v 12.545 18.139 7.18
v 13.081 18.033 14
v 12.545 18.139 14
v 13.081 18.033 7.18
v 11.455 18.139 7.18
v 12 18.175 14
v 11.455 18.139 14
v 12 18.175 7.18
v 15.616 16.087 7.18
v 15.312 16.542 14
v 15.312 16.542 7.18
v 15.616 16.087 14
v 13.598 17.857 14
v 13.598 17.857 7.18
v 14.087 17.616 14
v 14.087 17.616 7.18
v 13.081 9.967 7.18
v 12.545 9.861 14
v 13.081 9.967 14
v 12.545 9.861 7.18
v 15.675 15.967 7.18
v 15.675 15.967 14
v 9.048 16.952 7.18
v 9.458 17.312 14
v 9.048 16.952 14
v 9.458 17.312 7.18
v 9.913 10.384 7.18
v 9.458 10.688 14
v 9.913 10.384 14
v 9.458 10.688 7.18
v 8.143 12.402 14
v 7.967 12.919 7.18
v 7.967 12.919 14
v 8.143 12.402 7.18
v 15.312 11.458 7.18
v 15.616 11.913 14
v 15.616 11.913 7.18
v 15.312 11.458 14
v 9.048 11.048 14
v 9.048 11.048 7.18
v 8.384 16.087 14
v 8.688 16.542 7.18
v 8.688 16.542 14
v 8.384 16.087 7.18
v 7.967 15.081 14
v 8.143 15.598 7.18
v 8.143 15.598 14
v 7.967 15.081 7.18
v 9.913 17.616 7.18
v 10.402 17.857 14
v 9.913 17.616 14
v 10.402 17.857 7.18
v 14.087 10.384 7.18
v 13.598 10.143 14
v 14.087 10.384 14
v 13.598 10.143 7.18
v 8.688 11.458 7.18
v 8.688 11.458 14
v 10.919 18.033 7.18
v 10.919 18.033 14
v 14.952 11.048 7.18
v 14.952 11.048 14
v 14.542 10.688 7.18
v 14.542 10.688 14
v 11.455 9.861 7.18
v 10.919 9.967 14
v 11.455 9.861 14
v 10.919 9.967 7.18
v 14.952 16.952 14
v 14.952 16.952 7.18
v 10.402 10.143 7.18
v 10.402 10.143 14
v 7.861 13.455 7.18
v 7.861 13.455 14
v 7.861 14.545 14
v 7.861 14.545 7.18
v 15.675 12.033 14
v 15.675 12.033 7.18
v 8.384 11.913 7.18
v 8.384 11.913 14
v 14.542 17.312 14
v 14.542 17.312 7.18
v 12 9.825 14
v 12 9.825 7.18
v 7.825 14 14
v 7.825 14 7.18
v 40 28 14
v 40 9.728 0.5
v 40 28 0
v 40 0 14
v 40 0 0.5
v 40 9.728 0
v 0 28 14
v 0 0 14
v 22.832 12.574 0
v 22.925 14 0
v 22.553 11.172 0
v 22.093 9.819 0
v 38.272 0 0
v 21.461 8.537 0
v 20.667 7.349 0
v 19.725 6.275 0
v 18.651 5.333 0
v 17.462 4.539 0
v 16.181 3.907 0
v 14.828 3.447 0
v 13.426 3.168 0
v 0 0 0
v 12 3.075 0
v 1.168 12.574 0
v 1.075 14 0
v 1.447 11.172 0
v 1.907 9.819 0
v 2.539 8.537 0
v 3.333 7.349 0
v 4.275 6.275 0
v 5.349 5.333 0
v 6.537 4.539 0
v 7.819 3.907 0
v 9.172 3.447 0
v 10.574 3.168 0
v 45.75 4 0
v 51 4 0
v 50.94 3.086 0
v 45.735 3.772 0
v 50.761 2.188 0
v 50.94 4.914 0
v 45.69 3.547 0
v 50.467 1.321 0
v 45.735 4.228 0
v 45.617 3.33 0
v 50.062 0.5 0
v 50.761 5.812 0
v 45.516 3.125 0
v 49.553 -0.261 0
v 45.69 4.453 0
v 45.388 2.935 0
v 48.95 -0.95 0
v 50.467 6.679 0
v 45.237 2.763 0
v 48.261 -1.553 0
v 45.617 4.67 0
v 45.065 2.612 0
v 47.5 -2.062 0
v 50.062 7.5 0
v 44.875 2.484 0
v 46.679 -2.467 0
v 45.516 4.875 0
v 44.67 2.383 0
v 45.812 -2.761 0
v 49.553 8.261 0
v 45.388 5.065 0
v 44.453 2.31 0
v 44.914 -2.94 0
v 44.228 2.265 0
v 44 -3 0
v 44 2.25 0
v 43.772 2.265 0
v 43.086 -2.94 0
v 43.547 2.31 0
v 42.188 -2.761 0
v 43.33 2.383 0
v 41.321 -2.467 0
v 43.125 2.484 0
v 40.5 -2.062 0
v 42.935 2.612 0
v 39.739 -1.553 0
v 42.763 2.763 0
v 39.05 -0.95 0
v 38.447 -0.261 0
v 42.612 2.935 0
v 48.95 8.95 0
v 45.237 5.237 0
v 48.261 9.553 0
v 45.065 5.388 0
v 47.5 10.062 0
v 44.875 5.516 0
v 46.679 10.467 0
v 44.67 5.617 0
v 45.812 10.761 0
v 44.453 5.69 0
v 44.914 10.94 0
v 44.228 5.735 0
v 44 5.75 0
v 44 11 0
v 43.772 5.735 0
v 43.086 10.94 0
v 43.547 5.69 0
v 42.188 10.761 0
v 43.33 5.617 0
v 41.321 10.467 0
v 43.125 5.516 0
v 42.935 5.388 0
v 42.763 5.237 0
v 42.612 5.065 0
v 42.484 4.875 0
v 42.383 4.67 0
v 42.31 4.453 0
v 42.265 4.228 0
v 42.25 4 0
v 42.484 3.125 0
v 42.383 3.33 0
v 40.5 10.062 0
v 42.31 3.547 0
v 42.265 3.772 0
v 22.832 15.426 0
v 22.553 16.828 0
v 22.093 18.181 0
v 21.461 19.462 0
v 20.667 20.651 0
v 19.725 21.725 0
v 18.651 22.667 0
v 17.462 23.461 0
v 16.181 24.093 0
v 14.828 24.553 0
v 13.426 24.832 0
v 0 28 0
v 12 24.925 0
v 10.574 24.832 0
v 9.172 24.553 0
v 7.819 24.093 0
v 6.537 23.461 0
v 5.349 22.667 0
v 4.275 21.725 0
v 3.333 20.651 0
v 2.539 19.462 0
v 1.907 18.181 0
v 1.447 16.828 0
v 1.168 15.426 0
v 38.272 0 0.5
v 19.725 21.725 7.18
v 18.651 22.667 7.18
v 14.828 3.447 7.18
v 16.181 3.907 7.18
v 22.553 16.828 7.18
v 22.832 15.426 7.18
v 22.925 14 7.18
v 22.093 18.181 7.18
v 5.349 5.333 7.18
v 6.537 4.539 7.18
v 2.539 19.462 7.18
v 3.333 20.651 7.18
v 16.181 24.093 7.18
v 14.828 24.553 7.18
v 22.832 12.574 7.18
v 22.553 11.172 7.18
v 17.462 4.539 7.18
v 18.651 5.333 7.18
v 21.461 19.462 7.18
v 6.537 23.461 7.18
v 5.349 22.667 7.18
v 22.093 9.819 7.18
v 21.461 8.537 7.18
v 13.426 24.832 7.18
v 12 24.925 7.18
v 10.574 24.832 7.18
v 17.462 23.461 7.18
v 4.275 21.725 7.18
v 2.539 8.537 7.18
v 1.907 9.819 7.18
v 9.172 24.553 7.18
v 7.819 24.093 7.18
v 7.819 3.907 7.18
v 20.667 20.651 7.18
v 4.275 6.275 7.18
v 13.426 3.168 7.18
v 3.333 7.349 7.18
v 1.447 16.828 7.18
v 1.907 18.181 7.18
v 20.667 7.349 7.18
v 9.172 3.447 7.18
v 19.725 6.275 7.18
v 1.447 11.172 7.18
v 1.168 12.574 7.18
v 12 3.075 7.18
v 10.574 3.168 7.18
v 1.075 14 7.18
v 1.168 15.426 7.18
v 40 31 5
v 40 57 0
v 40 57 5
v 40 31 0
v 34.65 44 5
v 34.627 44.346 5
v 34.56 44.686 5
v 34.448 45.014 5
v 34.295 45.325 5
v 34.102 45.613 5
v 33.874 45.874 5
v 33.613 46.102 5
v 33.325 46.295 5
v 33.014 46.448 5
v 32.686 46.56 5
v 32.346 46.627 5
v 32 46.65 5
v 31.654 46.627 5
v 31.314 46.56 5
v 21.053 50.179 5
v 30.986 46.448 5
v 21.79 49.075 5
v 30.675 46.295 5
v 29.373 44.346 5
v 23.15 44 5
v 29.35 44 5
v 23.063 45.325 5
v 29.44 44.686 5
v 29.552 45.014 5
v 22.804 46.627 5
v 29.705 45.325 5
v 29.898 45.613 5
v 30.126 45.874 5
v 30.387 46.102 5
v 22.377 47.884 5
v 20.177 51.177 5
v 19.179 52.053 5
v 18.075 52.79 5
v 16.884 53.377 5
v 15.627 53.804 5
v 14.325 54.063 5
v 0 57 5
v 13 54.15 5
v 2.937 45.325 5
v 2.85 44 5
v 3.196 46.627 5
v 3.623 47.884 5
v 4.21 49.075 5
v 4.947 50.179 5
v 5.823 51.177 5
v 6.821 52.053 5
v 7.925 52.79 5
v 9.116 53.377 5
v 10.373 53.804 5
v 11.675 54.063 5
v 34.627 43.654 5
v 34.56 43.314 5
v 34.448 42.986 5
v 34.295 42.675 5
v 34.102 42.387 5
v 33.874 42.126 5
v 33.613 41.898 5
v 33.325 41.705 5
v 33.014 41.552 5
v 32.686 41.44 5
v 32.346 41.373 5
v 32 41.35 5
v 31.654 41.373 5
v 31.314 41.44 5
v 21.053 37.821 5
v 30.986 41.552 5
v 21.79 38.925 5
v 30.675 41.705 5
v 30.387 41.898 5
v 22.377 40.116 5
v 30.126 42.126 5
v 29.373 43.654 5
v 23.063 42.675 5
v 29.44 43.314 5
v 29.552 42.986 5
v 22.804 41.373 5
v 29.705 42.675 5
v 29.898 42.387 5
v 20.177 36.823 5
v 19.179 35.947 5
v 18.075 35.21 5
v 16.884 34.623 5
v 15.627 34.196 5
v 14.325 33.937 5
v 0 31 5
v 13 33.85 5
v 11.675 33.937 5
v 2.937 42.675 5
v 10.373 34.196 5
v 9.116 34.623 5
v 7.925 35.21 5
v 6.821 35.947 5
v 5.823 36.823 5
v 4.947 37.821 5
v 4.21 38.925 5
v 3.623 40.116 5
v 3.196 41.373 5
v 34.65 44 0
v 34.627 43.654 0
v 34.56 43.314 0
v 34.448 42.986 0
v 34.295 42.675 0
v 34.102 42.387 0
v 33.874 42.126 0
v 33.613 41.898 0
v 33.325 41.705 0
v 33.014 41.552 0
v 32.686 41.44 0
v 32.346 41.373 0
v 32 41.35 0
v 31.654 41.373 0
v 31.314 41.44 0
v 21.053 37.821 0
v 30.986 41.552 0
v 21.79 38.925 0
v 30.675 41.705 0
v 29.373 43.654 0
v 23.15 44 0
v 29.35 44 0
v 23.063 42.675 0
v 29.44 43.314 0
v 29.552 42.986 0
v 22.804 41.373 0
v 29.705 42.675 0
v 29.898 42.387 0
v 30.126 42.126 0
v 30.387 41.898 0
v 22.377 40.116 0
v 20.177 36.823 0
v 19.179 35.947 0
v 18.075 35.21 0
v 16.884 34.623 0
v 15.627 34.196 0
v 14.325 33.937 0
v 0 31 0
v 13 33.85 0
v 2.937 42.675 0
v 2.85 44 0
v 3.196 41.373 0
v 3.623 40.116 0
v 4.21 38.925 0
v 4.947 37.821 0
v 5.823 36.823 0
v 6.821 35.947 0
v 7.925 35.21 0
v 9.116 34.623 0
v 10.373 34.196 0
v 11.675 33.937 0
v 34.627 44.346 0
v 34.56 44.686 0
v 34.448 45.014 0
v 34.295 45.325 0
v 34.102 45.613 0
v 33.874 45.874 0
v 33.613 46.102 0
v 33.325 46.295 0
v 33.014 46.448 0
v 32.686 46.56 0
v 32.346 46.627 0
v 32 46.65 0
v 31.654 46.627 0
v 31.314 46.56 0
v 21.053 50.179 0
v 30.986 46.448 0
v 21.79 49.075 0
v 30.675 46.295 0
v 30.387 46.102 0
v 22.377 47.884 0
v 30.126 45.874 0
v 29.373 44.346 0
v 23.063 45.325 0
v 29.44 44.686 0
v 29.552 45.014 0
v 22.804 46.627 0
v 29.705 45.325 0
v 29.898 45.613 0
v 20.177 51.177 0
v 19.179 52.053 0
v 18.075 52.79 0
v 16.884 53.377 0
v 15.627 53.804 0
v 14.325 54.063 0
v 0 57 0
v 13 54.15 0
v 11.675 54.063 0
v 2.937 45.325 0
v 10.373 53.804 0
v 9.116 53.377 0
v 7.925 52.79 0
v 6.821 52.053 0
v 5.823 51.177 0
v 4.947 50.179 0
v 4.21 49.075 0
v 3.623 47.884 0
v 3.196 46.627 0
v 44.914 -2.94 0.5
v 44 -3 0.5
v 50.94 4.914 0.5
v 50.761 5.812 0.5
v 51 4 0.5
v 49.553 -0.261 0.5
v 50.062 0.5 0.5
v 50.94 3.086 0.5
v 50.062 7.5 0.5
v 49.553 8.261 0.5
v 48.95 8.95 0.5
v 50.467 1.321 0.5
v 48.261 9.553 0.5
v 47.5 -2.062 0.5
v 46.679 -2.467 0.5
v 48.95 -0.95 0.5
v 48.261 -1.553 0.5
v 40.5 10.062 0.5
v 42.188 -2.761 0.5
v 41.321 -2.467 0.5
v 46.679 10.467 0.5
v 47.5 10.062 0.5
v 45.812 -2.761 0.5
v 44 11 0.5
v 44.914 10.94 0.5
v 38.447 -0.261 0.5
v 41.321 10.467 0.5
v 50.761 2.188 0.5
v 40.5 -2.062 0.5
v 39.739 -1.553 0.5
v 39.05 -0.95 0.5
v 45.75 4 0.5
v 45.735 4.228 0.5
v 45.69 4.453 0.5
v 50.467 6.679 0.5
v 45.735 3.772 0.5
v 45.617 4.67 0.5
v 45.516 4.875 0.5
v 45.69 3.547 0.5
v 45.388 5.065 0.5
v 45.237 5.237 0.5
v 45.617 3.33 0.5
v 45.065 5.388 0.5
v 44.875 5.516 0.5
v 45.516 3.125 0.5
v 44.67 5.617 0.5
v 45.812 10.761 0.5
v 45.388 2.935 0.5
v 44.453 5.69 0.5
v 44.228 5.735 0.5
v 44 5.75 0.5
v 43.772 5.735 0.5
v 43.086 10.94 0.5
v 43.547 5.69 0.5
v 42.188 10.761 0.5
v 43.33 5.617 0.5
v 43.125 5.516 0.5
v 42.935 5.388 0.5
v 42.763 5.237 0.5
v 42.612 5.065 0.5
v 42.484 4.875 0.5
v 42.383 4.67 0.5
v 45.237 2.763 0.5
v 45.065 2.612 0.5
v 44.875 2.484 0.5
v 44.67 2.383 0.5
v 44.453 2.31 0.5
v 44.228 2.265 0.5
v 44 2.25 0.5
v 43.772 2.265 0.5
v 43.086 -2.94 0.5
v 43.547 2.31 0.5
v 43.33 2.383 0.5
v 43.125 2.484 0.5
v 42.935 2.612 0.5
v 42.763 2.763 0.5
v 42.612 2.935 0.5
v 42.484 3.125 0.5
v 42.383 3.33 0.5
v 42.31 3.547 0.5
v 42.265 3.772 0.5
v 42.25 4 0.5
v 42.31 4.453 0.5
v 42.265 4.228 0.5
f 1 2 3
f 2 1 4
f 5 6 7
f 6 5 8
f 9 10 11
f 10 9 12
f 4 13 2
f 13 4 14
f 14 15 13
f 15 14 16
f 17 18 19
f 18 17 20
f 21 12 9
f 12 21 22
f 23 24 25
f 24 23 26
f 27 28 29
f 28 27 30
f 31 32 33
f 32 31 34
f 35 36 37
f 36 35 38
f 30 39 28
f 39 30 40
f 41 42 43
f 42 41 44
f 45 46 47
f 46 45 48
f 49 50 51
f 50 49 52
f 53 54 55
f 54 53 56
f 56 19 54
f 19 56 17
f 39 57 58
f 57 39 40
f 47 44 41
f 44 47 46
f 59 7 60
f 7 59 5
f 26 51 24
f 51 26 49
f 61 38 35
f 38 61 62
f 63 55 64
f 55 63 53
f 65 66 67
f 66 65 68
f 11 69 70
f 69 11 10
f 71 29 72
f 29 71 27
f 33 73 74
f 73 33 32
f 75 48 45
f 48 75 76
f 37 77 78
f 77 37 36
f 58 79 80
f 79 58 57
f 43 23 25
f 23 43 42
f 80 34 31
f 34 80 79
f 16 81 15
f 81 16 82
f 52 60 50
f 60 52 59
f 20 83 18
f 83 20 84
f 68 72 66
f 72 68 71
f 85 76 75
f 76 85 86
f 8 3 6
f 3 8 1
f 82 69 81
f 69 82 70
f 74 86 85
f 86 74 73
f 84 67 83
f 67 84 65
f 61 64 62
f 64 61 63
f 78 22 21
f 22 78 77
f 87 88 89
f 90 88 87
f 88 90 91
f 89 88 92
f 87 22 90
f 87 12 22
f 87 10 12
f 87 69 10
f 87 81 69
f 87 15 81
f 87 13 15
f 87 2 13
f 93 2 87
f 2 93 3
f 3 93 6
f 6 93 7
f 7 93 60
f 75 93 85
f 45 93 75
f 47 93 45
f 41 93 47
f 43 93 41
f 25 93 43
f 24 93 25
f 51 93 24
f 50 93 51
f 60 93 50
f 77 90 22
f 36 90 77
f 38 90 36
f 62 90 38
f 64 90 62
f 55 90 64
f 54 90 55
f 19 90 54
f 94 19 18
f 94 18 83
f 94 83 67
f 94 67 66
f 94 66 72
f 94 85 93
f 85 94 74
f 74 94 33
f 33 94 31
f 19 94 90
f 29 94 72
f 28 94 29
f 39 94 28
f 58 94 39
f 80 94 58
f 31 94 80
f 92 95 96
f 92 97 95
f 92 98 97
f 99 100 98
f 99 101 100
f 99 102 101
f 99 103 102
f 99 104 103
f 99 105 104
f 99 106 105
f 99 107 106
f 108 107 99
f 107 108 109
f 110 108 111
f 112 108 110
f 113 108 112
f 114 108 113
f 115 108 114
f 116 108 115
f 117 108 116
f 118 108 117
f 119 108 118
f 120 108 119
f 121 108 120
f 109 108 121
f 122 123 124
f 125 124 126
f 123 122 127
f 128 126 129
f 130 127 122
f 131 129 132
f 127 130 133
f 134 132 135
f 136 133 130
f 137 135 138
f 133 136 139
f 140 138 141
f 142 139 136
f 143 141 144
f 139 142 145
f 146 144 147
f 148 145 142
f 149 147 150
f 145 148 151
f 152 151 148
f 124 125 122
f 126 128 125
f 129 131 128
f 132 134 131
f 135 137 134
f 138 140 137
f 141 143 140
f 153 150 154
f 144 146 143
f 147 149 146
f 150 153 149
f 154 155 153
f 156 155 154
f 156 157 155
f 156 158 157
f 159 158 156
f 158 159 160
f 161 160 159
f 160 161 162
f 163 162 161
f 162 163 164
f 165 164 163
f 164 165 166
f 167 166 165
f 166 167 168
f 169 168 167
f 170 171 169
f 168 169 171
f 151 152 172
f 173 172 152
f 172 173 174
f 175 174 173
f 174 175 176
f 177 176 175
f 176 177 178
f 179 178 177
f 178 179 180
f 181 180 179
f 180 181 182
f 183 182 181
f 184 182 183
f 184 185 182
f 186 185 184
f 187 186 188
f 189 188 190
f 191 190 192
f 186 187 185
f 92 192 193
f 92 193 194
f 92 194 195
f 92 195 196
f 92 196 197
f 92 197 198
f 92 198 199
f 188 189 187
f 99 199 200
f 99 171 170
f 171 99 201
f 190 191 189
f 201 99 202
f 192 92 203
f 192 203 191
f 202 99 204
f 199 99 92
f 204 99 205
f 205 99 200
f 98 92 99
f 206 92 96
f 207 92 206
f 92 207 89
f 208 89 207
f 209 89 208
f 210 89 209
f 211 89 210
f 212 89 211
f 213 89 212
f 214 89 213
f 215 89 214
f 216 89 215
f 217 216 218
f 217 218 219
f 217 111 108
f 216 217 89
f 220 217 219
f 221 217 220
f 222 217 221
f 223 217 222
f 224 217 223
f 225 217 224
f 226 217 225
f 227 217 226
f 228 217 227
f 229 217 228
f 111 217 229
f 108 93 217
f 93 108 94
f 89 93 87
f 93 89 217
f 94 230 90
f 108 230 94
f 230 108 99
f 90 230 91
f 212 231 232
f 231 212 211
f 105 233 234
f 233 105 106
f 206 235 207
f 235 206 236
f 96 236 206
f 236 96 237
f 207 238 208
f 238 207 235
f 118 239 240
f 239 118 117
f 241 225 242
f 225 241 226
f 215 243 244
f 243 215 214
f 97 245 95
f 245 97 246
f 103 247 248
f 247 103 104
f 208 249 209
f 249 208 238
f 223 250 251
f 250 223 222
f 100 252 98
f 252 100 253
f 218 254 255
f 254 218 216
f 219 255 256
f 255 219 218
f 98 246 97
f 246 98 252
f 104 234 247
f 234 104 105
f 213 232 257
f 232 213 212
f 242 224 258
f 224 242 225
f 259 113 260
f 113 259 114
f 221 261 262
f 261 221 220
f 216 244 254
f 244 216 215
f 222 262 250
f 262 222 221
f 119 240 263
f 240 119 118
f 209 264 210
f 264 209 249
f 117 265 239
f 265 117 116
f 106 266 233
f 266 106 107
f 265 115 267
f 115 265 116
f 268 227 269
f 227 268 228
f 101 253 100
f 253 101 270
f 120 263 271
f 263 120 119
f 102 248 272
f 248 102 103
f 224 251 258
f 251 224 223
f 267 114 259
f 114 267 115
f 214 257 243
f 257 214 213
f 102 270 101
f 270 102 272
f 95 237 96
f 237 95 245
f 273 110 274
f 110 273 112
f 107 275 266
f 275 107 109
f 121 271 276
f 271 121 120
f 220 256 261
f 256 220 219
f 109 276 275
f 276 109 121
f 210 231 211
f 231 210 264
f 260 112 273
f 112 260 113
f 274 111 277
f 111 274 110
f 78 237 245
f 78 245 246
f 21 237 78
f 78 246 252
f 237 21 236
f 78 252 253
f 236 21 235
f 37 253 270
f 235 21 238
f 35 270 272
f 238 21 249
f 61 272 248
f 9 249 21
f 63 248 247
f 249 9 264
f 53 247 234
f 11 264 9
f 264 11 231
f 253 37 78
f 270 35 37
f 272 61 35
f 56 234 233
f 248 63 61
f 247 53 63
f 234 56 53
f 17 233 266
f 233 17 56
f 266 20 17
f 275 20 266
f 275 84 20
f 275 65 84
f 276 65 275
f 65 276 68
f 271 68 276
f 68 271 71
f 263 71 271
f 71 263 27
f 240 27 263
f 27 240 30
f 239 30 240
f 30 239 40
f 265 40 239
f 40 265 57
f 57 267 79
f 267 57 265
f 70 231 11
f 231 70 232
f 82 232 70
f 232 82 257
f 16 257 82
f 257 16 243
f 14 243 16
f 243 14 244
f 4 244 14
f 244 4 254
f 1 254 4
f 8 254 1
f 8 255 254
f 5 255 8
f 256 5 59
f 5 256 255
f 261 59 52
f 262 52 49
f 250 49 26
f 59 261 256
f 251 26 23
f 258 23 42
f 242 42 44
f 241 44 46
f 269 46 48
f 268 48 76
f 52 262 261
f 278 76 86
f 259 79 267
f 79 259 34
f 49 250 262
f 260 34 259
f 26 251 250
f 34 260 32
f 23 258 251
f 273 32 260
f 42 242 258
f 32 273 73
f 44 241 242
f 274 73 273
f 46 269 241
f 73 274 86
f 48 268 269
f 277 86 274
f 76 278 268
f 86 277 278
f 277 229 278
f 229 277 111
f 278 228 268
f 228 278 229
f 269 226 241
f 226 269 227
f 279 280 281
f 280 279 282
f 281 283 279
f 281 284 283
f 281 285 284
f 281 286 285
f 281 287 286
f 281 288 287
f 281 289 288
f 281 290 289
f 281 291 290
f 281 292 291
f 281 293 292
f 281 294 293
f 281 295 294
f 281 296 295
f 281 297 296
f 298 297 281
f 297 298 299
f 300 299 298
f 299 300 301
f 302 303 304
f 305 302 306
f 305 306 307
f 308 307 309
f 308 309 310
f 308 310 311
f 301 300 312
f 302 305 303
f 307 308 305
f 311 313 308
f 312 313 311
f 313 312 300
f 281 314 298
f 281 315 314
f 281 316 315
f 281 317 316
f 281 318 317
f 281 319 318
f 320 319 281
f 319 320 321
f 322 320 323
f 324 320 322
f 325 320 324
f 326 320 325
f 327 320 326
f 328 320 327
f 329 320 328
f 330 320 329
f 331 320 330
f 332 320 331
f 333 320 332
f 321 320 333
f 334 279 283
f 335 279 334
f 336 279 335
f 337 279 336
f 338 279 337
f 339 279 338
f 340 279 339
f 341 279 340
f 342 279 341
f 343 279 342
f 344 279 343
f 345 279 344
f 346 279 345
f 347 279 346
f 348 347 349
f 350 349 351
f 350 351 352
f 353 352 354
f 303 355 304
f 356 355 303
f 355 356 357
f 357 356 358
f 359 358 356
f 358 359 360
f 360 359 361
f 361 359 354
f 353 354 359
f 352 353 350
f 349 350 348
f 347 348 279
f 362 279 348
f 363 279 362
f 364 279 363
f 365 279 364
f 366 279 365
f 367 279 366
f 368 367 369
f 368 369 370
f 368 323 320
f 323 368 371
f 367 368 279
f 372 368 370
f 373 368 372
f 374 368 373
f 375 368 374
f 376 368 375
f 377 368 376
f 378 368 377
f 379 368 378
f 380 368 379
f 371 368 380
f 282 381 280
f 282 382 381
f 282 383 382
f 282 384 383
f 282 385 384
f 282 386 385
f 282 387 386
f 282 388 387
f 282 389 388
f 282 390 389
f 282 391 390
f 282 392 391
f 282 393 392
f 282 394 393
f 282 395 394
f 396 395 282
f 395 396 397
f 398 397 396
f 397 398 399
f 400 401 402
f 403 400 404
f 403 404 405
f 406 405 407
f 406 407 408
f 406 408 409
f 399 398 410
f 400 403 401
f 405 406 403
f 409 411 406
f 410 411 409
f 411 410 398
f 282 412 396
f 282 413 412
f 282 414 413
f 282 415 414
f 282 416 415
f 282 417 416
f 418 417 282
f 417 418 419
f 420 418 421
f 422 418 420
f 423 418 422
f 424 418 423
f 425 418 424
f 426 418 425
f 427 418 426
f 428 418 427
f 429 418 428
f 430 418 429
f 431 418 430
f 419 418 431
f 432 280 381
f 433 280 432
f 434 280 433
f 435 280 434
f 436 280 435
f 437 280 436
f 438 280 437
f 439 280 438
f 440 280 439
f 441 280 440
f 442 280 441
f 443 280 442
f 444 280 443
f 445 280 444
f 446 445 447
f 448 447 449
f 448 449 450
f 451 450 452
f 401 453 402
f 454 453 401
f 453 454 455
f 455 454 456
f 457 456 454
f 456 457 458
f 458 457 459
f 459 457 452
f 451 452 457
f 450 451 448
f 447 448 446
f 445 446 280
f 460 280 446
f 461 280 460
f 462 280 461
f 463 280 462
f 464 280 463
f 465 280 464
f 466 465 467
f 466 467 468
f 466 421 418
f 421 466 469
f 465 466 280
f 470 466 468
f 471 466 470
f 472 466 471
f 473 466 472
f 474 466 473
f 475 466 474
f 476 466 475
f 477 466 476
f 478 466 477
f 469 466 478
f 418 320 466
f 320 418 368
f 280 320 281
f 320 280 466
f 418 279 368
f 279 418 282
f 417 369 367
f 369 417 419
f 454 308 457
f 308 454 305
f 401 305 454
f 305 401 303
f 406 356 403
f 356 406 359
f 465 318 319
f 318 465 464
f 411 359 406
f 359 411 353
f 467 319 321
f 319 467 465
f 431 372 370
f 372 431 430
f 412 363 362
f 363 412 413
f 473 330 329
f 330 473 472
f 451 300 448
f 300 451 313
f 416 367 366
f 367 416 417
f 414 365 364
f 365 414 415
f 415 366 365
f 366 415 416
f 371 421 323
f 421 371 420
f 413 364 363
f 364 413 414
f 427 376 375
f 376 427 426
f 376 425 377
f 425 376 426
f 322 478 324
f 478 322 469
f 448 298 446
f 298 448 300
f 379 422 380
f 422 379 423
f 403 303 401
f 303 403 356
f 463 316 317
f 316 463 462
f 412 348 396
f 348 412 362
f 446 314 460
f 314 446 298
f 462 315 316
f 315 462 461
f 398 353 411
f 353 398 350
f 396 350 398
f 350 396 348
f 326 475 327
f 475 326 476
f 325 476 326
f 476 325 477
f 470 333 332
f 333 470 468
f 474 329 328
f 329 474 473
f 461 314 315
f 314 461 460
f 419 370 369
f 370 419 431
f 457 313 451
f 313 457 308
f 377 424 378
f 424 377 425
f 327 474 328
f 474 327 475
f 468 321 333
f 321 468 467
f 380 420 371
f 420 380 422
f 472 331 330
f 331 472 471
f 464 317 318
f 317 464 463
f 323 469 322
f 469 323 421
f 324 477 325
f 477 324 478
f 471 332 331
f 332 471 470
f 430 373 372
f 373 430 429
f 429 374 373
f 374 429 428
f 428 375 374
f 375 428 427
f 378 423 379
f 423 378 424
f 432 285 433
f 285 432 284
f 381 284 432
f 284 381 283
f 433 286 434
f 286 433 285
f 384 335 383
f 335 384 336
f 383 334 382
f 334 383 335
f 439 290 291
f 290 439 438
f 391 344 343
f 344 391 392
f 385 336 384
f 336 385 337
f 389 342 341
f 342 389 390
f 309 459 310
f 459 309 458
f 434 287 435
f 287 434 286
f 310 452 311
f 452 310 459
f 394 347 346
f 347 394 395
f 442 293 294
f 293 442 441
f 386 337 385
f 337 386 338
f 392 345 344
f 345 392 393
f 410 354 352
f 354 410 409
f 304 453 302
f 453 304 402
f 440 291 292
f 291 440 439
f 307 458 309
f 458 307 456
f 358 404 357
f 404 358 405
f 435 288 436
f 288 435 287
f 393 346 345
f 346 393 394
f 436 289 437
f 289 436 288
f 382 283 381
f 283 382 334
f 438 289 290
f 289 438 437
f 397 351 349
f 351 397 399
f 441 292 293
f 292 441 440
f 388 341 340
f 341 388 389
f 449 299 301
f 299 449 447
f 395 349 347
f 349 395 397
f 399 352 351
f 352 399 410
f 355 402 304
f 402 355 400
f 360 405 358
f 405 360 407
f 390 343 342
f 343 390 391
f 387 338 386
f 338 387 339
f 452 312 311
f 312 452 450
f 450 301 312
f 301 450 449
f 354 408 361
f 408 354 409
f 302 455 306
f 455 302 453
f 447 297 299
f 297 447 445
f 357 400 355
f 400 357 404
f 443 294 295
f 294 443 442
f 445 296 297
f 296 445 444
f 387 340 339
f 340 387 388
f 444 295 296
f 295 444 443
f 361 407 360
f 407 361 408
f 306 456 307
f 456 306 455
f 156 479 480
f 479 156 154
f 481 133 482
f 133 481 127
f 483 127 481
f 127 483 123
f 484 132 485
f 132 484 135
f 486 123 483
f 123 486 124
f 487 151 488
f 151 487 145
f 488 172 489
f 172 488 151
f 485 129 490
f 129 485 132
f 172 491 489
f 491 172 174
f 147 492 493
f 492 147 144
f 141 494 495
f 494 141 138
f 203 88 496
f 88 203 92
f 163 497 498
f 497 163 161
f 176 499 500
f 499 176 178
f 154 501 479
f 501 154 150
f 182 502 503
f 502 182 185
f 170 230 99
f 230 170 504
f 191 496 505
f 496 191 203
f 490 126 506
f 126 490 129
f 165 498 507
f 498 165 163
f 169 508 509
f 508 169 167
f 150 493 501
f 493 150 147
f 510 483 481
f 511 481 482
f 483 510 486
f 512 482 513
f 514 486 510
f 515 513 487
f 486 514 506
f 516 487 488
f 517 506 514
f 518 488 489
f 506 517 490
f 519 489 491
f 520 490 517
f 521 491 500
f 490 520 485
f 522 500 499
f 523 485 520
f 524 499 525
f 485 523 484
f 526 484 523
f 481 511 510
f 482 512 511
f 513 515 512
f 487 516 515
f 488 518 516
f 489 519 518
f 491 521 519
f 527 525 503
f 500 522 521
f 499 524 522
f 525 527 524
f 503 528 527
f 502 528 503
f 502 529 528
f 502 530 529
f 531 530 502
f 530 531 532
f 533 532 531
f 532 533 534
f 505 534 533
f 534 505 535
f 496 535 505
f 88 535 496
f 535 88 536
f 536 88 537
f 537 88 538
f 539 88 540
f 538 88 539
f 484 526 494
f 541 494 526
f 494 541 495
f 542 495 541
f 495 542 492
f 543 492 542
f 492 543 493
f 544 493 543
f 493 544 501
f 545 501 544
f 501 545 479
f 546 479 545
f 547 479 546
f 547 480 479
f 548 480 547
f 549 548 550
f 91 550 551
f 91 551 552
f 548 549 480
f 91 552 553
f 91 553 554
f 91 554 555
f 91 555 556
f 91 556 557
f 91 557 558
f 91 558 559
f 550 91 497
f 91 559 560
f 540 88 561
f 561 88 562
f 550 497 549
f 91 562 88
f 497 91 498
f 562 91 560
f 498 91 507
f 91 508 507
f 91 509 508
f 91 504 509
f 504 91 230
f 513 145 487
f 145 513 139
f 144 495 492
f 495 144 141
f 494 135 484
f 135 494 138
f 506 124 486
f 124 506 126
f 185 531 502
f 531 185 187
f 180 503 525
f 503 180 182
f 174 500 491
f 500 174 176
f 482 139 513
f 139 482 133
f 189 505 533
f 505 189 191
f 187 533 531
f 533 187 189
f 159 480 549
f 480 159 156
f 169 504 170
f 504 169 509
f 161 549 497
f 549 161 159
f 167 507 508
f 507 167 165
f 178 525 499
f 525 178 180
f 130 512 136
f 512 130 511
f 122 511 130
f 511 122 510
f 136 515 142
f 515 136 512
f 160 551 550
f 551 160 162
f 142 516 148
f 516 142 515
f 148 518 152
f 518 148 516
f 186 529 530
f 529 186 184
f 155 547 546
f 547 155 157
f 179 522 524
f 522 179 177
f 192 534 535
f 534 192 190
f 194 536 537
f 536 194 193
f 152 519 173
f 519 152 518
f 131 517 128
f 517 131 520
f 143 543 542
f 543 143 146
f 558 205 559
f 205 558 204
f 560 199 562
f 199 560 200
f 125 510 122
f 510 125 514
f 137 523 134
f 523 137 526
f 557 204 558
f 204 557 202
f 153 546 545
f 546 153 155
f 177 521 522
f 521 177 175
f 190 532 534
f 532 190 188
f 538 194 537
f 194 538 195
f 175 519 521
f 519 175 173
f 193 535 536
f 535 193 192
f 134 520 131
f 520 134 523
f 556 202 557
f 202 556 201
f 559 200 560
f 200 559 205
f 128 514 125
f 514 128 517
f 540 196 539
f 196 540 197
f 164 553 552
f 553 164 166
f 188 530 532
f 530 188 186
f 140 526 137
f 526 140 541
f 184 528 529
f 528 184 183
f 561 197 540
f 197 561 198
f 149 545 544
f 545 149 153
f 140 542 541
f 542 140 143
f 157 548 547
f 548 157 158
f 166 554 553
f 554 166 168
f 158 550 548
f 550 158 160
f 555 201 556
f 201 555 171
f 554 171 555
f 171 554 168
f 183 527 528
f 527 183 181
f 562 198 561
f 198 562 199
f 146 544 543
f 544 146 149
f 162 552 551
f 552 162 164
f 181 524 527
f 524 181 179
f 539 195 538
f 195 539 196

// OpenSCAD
// file: parameters.scad
// =============================================================================
// Gen-CB — nightly 2026-10-13 (physics_scorer, honest magpylib watts)
// Wire-saver stator for the Gen-CA rotors: only 4.05 mm of copper (9 layers), so the magnet faces are 6.65 mm apart and peak Bz at the copper reaches ≈0.70 T. It needs ≈300 m of wire (≈80 m less than Gen-CA, ≈75 m less than Gen-BX) and still out-scores the Gen-BX champion; it shares every rotor part, the steel, the frame rods and the bearing bridges with Gen-CA, so the two stators swap on the same machine.
// Clocking 0 deg (magnets N facing S) + D-flat keyed bore + index notch + flip-symmetric hole map.
// Windable 2-piece bobbin; turns = physics_scorer turns_fit; copper only between flanges.
// Steel back-iron: 2× Ø194 × 4.76 mm (3/16") mild-steel discs (steel_backiron_disc.dxf); magnets sit ON the steel
// (through-pockets) -> score with --back-iron. Night 2026-10-13.
// =============================================================================
topology            = "dual_rotor";

// --- Wire / winding (physics_scorer winding-fit) -------------------------------
wire_awg            = 26;
wire_od             = 0.45;     // insulated OD mm (bare 0.405)
fill_realistic      = 0.65;     // insulated-wire area / window (DENSE layered wind with a jig; scorer cap 0.65)
turns               = 292;       // = physics_scorer turns_fit (do NOT raise)
coil_former_type    = "bobbin";
coil_core_inset     = 17.70;     // radial copper build: hub = copper boundary inset by this
wind_build_axial    = 0.0;      // nothing proud of the flanges
wind_build_radial   = 0.0;

// --- Bobbin (base + lid) ---------------------------------------------------------
coil_id_r           = 63.00;    // copper boundary sector
coil_od_r           = 102.00;
span_deg            = 26.82;    // = pitch - 2*asin((wall+0.85)/coil_id_r) -> >=1.2 mm stator web
former_web          = 4.05;     // copper height between flanges (TALL copper: steel keeps Bz up)
flange_t            = 0.80;     // >= 0.8 mm FDM wall rule (tall winds push on the flanges)
wall                = 0.80;     // flange lip beyond copper
former_bare_h       = former_web + 2 * flange_t;
coil_envelope_h     = former_bare_h + 2 * wind_build_axial;
tab_w               = 7.0;
tab_len             = 7.0;
tab_h               = former_bare_h / 2;
pin_d               = 1.9;      // 1.75 mm filament locating pin
coil_mount_r        = coil_od_r + 0.2 + 4.0;
lead_y              = 1.6;
lead_slot_w         = 0.9;
lead_groove_d       = 0.6;

// --- Gap -------------------------------------------------------------------------
run_clear           = 0.50;     // rotor face -> flange
gap_spacer_h        = run_clear + wind_build_axial;
m2m                 = coil_envelope_h + 2 * run_clear;   // rotor face to rotor face (= gap_sleeve length)

// --- Stator ----------------------------------------------------------------------
coil_stations       = 12;
bay_clear           = 0.35;     // 0.35 mm: bobbin BASES print IN PLACE inside the stator bays (print-in-place gap), then pop out
stator_thick        = former_bare_h;                        // bobbins flush both faces
stator_od           = 225.0;
shaft_clear_stator  = 14.0;     // stator is static; gap sleeve OD 12 spins inside
stator_ir           = 57.85;    // ANNULAR stator: open centre (nested one-plate pack); inner rim 4.0 mm

// --- Rotor(s) --------------------------------------------------------------------
magnet_Br           = 1.43;     // N52
magnet_d_large      = 20.0;
magnet_h_large      = 5.0;      // one O20x5 per pocket
magnet_h_small      = 5.0;      // unused: no O5 pockets in this kit
halbach_magnetisation = "none";  // NO O5 assist magnets in this kit (scan: they lower the 4-pole score)
rotor_b_same_axis   = true;     // same-index magnets share one axis: N faces S across the gap
large_pocket_d      = 20.3;
small_pocket_d      = 5.3;
pocket_h            = 5.00;     // THROUGH the carrier: magnet back face sits on the steel disc (FLUSH seat: carrier = magnet height, magnet face level with the rotor face)
large_n             = 8;
R_large             = 84.0;
small_r_list        = [];       // no O5 pockets
carrier_od          = 194.0;
ring_ir             = 70.85;    // RING rotor: PLA magnet ring r ring_ir..carrier_od/2 (steel disc = structural rotor)
hub_flange_od       = 74.0;     // separate rotor_hub flange (inside the ring, flush with the ring face)
csk_d               = 6.6;      // M3 countersunk head pocket (ISO 10642 head 6.0 nominal) on the stator face
csk_depth           = 1.55;     // = (csk_d - m3_clear) / 2: 90 deg cone; head sits 0.3 mm below the face
n_seg               = 8;        // magnet-carrier ARCS per rotor (segmented carrier)
seg_deg             = 360 / n_seg;
seg_start           = -22.5;   // arc edge angle (between pocket 0 and its clamp bolt)
seg_kerf_deg        = 0.4;      // gap between neighbouring arcs on the steel
carrier_thick       = pocket_h;
hub_h               = 12.0;     // > steel_t + insert: radial set-screw clears the steel
hub_od              = 24.0;     // slim hub so the M4 brace rods fit at R~18 inside the coil ring
hub_insert_d        = 4.0;      // M3 heat-set insert, radial, bears on the D-flat
rotor_b_offset_deg  = 0.0;      // CLOCKING: magnets directly opposite
shaft_key           = "dflat";
dflat_depth         = 0.5;      // 8 mm shaft with 0.5 mm flat (7.5 across flat)
index_notch_d       = 3.0;

// --- Steel back-iron (buyable laser-cut) -------------------------------------------
steel_t             = 4.76;      // mild steel thickness (image method ignores it; sized from steel_flux.py so the return path stays well below saturation)
steel_center_hole   = 26.0;     // slips over the rotor hub (OD 24)
steel_od            = carrier_od;   // steel disc OD = rotor carrier OD

// --- Modular MAX interface ----------------------------------------------------------
shaft_bore          = 8.35;
dflat_x             = 4.0 - dflat_depth + (shaft_bore - 8.0) / 2;
bearing_d           = 21.85;
bearing_h           = 7.2;
m3_clear            = 3.5;
bolt_r_inner        = 30.0;     // M3 steel-disc clamp bolts (inside the magnet ring)
bolt_n_inner        = 4;
bolt_inner_angles   = [0, 90, 180, 270];
bolt_r_outer        = 84.0;     // second M3 steel-disc clamp ring
bolt_outer_angles   = [22.5, 67.5, 112.5, 157.5, 202.5, 247.5, 292.5, 337.5];
flange_bolt_r       = 107.5;     // frame rods: OUTSIDE the rotor OD (rotors spin inside them)
flange_bolt_n       = 4;
flange_bolt_offset  = 45.00;    // between coil stations -> never cuts a lead groove/tab
brace_r             = 18.0;
brace_d             = 4.3;      // temporary M4 jack rods (assembly only)
brace_n             = 4;
brace_angles        = [45, 135, 225, 315];          // flip-symmetric

spacer_pad_od       = 14.0;
spacer_pad_id       = m3_clear;
endbell_od          = 225.0;
endbell_thick       = 8.0;
endbell_shaft_clear = 10.0;
collar_h            = 10.0;
standoff_od         = 9.0;
frame_standoff_h    = run_clear + carrier_thick + hub_h + collar_h + 2.0;
sleeve_od           = 12.0;
plate_max_mm        = 410;

$fn = 64;
// main file
// Gen-CB — fit coupon: O20/O5 THROUGH pockets at carrier thickness (test on a steel offcut), 608 seat,
// D-flat bore, gap shim, and one bobbin-bay slice (bobbin footprint + bay_clear) to test former fit.
include <parameters.scad>;
$fn = 48;
// D-flat keyed bore: flat faces +X (angle 0 = magnet pocket 0 = index notch)
module dflat_bore(h) {
    intersection() {
        cylinder(d=shaft_bore, h=h);
        translate([-shaft_bore, -shaft_bore, 0]) cube([shaft_bore + dflat_x, 2*shaft_bore, h]);
    }
}
module sector_2d(r_in, r_out, ang) {
    polygon([
        for (a = [-ang/2 : ang/24 : ang/2]) [r_in*cos(a), r_in*sin(a)],
        for (a = [ang/2 : -ang/24 : -ang/2]) [r_out*cos(a), r_out*sin(a)]
    ]);
}
module footprint_2d() { offset(r=wall) sector_2d(coil_id_r, coil_od_r, span_deg); }
module hub_2d()       { offset(delta=-coil_core_inset) sector_2d(coil_id_r, coil_od_r, span_deg); }

block_w = 40; block_d = 28; block_h = 14;
difference() {
    cube([block_w, block_d, block_h]);
    translate([12, block_d/2, -0.02]) cylinder(d=bearing_d, h=bearing_h);
    translate([12, block_d/2, -0.1]) dflat_bore(block_h + 1);
}
translate([0, block_d + 3, 0]) difference() {
    cube([40, 26, carrier_thick]);
    translate([13, 13, -0.1]) cylinder(d=large_pocket_d, h=carrier_thick + 0.2);
    translate([32, 13, -0.1]) cylinder(d=small_pocket_d, h=carrier_thick + 0.2);
}
translate([block_w + 4, 4, 0])
    difference() {
        cylinder(d=spacer_pad_od, h=gap_spacer_h);
        translate([0, 0, -0.1]) cylinder(d=spacer_pad_id, h=gap_spacer_h + 0.2);
    }
